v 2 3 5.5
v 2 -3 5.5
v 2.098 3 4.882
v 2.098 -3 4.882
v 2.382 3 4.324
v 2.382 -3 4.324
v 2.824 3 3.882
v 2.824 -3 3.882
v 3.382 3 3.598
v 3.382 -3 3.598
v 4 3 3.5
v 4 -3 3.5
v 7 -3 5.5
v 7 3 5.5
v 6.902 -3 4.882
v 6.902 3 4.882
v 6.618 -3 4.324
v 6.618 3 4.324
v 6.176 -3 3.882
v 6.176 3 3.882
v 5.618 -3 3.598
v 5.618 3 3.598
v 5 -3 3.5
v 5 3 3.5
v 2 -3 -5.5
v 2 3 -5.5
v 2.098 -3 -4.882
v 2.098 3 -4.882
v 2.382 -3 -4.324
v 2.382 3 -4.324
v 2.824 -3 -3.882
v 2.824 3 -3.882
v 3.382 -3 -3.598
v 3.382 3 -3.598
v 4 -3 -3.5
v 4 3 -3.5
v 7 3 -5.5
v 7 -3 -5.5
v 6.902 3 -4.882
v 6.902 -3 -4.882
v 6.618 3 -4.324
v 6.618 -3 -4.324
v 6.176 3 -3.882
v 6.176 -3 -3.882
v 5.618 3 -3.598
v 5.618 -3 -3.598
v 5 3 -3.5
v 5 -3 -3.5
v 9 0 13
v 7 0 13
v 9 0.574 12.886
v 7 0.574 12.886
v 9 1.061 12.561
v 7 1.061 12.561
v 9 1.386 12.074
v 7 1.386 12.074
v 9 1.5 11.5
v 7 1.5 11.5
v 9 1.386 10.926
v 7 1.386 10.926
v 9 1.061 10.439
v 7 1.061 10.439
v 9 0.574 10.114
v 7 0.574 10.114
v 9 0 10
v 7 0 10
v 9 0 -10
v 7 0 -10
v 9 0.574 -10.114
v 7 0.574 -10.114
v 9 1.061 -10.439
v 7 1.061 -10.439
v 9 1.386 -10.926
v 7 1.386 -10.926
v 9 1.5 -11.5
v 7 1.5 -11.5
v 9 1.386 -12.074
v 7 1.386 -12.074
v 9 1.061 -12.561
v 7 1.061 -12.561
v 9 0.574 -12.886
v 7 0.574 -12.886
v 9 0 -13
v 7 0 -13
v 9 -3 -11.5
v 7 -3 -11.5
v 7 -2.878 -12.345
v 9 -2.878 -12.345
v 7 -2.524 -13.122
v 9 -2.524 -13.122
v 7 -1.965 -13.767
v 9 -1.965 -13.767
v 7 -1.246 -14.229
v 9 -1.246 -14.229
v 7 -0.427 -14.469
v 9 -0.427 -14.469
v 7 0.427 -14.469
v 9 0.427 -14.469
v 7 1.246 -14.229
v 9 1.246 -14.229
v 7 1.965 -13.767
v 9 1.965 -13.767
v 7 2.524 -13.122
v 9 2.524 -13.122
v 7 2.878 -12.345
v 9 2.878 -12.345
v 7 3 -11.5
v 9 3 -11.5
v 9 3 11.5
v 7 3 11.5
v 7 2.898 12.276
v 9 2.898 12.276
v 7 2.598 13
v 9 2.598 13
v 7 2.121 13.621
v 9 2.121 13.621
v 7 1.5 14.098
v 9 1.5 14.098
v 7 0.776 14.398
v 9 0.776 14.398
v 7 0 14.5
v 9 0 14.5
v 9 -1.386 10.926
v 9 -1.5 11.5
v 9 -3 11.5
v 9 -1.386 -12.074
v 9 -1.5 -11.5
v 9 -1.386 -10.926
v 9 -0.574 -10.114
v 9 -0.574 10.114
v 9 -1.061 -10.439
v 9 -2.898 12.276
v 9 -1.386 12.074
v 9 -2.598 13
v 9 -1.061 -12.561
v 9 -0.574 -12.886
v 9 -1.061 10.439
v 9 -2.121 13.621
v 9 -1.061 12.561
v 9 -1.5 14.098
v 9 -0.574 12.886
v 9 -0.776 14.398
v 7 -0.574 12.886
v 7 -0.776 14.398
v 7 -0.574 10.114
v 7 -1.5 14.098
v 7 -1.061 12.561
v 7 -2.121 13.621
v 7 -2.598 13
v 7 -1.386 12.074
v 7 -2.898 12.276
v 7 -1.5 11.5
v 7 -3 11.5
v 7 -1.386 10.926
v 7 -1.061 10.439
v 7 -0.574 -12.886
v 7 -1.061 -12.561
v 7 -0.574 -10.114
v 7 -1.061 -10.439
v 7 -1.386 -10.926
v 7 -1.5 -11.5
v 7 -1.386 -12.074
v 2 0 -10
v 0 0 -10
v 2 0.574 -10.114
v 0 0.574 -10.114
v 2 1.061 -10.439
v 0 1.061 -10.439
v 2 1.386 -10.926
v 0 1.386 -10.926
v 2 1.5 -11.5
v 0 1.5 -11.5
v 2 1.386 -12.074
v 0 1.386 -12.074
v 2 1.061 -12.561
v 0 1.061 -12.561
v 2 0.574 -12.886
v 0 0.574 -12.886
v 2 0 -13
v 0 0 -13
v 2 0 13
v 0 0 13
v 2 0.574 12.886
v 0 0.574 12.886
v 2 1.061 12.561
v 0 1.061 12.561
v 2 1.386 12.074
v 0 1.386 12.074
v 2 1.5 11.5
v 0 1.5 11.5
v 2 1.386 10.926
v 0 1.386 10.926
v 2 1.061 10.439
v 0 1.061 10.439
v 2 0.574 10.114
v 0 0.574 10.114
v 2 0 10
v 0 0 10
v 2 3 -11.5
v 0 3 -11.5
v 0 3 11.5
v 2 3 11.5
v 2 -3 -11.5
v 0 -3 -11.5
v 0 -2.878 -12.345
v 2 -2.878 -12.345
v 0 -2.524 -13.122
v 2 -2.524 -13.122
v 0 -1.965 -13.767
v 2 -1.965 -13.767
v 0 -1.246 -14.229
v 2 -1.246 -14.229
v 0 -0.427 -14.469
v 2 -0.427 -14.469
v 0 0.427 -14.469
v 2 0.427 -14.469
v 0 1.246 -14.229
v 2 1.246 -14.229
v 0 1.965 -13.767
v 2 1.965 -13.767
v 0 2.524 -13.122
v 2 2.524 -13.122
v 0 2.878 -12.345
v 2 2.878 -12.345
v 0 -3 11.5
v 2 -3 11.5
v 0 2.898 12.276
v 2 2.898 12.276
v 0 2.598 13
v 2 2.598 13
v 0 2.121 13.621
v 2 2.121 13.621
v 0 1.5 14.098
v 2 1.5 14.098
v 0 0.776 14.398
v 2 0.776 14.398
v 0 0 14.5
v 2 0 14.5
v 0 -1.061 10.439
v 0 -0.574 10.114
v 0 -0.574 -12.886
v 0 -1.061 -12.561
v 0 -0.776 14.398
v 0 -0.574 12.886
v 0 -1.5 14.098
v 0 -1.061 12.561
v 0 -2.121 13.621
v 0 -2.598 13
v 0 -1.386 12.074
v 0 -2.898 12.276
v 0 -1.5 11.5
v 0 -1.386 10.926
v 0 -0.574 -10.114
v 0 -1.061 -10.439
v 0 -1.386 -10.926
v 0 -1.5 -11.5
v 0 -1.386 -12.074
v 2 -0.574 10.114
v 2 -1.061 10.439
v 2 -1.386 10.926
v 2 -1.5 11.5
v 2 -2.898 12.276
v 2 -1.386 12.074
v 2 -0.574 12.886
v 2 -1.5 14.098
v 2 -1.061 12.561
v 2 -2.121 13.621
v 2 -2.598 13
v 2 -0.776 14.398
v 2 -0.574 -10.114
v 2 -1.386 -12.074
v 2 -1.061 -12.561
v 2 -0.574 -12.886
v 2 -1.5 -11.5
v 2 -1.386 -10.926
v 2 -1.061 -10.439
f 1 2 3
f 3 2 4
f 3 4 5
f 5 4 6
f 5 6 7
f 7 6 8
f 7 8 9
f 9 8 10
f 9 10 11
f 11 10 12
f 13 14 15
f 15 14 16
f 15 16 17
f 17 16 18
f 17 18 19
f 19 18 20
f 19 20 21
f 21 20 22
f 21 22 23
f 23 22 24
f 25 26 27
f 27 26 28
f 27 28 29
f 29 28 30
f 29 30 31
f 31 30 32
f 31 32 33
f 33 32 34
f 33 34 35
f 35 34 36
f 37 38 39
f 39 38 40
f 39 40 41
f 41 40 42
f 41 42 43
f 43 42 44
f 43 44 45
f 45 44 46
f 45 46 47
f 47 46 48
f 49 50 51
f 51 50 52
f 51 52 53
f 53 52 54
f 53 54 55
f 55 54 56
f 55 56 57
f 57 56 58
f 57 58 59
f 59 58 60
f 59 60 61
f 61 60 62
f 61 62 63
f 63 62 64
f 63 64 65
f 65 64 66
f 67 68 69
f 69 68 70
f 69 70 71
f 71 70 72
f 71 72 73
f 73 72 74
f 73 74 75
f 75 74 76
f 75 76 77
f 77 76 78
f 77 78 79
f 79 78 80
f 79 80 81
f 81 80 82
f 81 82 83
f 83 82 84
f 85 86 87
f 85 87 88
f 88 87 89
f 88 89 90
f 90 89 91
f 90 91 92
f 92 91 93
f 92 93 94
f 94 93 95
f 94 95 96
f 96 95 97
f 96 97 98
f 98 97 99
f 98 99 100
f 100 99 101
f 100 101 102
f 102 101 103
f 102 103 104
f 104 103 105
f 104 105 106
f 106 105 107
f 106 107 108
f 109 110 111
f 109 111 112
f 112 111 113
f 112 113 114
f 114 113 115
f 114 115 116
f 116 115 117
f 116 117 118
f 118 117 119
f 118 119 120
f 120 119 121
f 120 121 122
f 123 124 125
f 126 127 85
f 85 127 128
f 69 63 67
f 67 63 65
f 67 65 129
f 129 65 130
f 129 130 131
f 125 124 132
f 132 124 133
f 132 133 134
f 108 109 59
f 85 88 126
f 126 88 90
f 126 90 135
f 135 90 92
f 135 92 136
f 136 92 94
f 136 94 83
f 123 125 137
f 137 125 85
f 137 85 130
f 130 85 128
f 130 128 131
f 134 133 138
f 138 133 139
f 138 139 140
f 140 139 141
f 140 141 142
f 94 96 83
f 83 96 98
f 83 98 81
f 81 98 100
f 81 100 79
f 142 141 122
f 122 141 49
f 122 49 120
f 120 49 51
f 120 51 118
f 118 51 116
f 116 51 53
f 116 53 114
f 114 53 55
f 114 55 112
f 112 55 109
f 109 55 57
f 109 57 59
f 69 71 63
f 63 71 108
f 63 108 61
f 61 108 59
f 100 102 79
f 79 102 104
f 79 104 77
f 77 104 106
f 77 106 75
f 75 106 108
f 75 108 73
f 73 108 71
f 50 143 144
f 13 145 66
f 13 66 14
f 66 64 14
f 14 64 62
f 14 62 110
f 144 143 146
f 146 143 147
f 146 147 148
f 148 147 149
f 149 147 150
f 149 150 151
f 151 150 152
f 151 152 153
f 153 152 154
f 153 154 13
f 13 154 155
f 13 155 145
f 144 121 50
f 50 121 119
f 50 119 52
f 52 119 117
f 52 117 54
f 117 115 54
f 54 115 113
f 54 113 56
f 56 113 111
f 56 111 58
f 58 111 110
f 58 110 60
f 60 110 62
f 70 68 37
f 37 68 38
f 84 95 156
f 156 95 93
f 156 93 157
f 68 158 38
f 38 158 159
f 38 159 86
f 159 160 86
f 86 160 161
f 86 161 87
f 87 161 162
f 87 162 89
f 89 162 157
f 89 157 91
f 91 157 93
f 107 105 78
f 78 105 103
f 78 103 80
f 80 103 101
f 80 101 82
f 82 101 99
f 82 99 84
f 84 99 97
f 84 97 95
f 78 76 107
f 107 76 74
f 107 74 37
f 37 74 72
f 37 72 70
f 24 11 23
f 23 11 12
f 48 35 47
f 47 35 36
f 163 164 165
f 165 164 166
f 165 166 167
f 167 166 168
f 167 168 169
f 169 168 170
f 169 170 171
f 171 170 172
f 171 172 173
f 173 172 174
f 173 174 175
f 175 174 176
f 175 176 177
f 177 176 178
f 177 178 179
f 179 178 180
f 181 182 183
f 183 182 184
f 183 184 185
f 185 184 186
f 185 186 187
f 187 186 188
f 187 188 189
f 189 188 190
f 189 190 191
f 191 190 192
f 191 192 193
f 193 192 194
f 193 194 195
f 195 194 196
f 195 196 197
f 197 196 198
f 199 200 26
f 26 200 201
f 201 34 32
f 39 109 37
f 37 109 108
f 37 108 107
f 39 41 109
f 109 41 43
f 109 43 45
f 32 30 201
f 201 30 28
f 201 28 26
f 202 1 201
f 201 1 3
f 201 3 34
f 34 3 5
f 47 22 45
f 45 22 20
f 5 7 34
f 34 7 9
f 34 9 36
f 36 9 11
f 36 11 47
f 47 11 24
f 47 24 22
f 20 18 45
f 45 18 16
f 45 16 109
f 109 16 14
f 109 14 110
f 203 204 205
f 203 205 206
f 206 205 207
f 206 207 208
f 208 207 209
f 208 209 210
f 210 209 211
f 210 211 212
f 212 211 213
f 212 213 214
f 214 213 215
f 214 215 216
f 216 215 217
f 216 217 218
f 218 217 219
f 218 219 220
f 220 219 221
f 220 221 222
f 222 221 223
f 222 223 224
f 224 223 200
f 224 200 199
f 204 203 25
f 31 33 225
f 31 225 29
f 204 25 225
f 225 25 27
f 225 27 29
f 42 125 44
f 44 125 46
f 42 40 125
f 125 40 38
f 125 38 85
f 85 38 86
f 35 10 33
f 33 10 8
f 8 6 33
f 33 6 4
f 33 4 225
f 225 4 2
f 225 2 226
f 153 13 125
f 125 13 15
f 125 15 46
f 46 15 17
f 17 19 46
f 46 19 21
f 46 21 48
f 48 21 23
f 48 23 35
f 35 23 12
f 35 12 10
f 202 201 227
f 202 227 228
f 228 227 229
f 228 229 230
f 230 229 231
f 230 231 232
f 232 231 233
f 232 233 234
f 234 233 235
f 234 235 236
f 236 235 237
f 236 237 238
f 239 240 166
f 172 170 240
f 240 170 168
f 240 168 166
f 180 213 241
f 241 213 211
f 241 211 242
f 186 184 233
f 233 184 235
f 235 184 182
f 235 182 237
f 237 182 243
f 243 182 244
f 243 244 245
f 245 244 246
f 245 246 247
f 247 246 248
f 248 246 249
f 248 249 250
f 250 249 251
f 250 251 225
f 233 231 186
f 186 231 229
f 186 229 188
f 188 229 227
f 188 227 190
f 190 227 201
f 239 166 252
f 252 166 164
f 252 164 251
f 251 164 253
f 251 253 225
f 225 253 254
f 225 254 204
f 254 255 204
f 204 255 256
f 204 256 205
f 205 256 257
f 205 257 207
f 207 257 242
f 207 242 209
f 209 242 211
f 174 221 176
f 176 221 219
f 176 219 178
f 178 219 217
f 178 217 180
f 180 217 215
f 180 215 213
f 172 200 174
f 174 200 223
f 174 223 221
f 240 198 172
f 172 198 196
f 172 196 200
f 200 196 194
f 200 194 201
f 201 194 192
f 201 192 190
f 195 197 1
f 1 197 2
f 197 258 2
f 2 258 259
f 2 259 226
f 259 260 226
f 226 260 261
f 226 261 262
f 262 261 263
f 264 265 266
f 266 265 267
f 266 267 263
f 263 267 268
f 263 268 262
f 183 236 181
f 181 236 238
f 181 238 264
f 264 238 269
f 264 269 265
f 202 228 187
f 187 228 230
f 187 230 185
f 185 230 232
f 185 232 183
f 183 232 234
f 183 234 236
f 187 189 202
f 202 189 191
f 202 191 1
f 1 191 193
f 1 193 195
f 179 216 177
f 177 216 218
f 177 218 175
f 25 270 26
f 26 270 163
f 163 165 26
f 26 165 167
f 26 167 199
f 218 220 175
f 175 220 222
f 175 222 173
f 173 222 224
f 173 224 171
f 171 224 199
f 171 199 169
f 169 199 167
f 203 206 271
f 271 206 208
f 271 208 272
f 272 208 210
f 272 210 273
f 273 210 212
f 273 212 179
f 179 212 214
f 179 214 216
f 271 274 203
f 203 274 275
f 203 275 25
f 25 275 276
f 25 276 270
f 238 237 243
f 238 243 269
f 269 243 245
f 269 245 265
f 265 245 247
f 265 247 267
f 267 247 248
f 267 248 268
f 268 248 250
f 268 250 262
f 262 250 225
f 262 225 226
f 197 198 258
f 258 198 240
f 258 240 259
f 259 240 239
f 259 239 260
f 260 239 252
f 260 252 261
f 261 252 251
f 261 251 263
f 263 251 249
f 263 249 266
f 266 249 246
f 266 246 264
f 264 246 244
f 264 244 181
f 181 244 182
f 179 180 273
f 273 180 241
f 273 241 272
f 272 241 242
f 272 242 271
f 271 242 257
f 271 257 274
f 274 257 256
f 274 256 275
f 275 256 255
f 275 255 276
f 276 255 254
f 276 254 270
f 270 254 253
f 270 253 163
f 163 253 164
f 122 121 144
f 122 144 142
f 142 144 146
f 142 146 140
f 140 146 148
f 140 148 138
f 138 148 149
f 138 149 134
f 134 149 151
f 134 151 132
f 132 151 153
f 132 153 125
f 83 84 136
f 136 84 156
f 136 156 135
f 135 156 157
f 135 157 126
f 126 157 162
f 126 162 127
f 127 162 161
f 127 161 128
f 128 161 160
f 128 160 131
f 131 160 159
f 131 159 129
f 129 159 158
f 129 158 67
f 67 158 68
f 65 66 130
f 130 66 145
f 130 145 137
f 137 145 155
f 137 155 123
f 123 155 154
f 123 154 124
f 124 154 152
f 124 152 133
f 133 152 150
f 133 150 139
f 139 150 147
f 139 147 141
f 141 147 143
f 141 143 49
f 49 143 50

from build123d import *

# Parameters (mm, degrees)
SKETCH1_R           = 1.5
BOSS_EXTRUDE1_DEPTH = 2
SKETCH2_W           = 7
SKETCH2_H           = 6
BOSS_EXTRUDE2_DEPTH = 5
SKETCH3_R           = 1.5
BOSS_EXTRUDE3_DEPTH = 2
FILLET1_R           = 2


with BuildPart() as part:
    # Sketch1 → Boss-Extrude1 (new body)
    with BuildSketch(Plane(origin=(0, 0, 0), x_dir=(0, 0, -1), z_dir=(1, 0, 0))):
        with BuildLine():
            Line((-11.5, 3), (11.5, 3))
            ThreePointArc((11.5, 3), (14.5, 0), (11.5, -3))
            Line((11.5, -3), (-11.5, -3))
            ThreePointArc((-11.5, -3), (-14.5, 0), (-11.5, 3))
        make_face()
        with Locations((-11.5, 0)):
            Circle(SKETCH1_R, mode=Mode.SUBTRACT)
        with Locations((11.5, 0)):
            Circle(SKETCH1_R, mode=Mode.SUBTRACT)
    extrude(amount=BOSS_EXTRUDE1_DEPTH)

    # Sketch2 → Boss-Extrude2 (add)
    with BuildSketch(Plane(origin=(2, 0, 0), x_dir=(0, 0, -1), z_dir=(1, 0, 0))):
        Rectangle(SKETCH2_W, SKETCH2_H)
    extrude(amount=BOSS_EXTRUDE2_DEPTH)

    # Sketch3 → Boss-Extrude3 (add)
    with BuildSketch(Plane(origin=(7, 0, 0), x_dir=(0, 0, -1), z_dir=(1, 0, 0))):
        with BuildLine():
            Line((11.5, 3), (-11.5, 3))
            ThreePointArc((-11.5, 3), (-14.5, 0), (-11.5, -3))
            Line((-11.5, -3), (11.5, -3))
            ThreePointArc((11.5, -3), (14.5, 0), (11.5, 3))
        make_face()
        with Locations((11.5, 0)):
            Circle(SKETCH3_R, mode=Mode.SUBTRACT)
        with Locations((-11.5, 0)):
            Circle(SKETCH3_R, mode=Mode.SUBTRACT)
    extrude(amount=BOSS_EXTRUDE3_DEPTH)

    # Fillet1
    fillet1_edges = [part.edges().sort_by_distance(p)[0] for p in [
        (2, 0, -3.5),
        (2, 0, 3.5),
        (7, 0, -3.5),
        (7, 0, 3.5),
    ]]
    fillet(fillet1_edges, radius=FILLET1_R)


solid = part.part
